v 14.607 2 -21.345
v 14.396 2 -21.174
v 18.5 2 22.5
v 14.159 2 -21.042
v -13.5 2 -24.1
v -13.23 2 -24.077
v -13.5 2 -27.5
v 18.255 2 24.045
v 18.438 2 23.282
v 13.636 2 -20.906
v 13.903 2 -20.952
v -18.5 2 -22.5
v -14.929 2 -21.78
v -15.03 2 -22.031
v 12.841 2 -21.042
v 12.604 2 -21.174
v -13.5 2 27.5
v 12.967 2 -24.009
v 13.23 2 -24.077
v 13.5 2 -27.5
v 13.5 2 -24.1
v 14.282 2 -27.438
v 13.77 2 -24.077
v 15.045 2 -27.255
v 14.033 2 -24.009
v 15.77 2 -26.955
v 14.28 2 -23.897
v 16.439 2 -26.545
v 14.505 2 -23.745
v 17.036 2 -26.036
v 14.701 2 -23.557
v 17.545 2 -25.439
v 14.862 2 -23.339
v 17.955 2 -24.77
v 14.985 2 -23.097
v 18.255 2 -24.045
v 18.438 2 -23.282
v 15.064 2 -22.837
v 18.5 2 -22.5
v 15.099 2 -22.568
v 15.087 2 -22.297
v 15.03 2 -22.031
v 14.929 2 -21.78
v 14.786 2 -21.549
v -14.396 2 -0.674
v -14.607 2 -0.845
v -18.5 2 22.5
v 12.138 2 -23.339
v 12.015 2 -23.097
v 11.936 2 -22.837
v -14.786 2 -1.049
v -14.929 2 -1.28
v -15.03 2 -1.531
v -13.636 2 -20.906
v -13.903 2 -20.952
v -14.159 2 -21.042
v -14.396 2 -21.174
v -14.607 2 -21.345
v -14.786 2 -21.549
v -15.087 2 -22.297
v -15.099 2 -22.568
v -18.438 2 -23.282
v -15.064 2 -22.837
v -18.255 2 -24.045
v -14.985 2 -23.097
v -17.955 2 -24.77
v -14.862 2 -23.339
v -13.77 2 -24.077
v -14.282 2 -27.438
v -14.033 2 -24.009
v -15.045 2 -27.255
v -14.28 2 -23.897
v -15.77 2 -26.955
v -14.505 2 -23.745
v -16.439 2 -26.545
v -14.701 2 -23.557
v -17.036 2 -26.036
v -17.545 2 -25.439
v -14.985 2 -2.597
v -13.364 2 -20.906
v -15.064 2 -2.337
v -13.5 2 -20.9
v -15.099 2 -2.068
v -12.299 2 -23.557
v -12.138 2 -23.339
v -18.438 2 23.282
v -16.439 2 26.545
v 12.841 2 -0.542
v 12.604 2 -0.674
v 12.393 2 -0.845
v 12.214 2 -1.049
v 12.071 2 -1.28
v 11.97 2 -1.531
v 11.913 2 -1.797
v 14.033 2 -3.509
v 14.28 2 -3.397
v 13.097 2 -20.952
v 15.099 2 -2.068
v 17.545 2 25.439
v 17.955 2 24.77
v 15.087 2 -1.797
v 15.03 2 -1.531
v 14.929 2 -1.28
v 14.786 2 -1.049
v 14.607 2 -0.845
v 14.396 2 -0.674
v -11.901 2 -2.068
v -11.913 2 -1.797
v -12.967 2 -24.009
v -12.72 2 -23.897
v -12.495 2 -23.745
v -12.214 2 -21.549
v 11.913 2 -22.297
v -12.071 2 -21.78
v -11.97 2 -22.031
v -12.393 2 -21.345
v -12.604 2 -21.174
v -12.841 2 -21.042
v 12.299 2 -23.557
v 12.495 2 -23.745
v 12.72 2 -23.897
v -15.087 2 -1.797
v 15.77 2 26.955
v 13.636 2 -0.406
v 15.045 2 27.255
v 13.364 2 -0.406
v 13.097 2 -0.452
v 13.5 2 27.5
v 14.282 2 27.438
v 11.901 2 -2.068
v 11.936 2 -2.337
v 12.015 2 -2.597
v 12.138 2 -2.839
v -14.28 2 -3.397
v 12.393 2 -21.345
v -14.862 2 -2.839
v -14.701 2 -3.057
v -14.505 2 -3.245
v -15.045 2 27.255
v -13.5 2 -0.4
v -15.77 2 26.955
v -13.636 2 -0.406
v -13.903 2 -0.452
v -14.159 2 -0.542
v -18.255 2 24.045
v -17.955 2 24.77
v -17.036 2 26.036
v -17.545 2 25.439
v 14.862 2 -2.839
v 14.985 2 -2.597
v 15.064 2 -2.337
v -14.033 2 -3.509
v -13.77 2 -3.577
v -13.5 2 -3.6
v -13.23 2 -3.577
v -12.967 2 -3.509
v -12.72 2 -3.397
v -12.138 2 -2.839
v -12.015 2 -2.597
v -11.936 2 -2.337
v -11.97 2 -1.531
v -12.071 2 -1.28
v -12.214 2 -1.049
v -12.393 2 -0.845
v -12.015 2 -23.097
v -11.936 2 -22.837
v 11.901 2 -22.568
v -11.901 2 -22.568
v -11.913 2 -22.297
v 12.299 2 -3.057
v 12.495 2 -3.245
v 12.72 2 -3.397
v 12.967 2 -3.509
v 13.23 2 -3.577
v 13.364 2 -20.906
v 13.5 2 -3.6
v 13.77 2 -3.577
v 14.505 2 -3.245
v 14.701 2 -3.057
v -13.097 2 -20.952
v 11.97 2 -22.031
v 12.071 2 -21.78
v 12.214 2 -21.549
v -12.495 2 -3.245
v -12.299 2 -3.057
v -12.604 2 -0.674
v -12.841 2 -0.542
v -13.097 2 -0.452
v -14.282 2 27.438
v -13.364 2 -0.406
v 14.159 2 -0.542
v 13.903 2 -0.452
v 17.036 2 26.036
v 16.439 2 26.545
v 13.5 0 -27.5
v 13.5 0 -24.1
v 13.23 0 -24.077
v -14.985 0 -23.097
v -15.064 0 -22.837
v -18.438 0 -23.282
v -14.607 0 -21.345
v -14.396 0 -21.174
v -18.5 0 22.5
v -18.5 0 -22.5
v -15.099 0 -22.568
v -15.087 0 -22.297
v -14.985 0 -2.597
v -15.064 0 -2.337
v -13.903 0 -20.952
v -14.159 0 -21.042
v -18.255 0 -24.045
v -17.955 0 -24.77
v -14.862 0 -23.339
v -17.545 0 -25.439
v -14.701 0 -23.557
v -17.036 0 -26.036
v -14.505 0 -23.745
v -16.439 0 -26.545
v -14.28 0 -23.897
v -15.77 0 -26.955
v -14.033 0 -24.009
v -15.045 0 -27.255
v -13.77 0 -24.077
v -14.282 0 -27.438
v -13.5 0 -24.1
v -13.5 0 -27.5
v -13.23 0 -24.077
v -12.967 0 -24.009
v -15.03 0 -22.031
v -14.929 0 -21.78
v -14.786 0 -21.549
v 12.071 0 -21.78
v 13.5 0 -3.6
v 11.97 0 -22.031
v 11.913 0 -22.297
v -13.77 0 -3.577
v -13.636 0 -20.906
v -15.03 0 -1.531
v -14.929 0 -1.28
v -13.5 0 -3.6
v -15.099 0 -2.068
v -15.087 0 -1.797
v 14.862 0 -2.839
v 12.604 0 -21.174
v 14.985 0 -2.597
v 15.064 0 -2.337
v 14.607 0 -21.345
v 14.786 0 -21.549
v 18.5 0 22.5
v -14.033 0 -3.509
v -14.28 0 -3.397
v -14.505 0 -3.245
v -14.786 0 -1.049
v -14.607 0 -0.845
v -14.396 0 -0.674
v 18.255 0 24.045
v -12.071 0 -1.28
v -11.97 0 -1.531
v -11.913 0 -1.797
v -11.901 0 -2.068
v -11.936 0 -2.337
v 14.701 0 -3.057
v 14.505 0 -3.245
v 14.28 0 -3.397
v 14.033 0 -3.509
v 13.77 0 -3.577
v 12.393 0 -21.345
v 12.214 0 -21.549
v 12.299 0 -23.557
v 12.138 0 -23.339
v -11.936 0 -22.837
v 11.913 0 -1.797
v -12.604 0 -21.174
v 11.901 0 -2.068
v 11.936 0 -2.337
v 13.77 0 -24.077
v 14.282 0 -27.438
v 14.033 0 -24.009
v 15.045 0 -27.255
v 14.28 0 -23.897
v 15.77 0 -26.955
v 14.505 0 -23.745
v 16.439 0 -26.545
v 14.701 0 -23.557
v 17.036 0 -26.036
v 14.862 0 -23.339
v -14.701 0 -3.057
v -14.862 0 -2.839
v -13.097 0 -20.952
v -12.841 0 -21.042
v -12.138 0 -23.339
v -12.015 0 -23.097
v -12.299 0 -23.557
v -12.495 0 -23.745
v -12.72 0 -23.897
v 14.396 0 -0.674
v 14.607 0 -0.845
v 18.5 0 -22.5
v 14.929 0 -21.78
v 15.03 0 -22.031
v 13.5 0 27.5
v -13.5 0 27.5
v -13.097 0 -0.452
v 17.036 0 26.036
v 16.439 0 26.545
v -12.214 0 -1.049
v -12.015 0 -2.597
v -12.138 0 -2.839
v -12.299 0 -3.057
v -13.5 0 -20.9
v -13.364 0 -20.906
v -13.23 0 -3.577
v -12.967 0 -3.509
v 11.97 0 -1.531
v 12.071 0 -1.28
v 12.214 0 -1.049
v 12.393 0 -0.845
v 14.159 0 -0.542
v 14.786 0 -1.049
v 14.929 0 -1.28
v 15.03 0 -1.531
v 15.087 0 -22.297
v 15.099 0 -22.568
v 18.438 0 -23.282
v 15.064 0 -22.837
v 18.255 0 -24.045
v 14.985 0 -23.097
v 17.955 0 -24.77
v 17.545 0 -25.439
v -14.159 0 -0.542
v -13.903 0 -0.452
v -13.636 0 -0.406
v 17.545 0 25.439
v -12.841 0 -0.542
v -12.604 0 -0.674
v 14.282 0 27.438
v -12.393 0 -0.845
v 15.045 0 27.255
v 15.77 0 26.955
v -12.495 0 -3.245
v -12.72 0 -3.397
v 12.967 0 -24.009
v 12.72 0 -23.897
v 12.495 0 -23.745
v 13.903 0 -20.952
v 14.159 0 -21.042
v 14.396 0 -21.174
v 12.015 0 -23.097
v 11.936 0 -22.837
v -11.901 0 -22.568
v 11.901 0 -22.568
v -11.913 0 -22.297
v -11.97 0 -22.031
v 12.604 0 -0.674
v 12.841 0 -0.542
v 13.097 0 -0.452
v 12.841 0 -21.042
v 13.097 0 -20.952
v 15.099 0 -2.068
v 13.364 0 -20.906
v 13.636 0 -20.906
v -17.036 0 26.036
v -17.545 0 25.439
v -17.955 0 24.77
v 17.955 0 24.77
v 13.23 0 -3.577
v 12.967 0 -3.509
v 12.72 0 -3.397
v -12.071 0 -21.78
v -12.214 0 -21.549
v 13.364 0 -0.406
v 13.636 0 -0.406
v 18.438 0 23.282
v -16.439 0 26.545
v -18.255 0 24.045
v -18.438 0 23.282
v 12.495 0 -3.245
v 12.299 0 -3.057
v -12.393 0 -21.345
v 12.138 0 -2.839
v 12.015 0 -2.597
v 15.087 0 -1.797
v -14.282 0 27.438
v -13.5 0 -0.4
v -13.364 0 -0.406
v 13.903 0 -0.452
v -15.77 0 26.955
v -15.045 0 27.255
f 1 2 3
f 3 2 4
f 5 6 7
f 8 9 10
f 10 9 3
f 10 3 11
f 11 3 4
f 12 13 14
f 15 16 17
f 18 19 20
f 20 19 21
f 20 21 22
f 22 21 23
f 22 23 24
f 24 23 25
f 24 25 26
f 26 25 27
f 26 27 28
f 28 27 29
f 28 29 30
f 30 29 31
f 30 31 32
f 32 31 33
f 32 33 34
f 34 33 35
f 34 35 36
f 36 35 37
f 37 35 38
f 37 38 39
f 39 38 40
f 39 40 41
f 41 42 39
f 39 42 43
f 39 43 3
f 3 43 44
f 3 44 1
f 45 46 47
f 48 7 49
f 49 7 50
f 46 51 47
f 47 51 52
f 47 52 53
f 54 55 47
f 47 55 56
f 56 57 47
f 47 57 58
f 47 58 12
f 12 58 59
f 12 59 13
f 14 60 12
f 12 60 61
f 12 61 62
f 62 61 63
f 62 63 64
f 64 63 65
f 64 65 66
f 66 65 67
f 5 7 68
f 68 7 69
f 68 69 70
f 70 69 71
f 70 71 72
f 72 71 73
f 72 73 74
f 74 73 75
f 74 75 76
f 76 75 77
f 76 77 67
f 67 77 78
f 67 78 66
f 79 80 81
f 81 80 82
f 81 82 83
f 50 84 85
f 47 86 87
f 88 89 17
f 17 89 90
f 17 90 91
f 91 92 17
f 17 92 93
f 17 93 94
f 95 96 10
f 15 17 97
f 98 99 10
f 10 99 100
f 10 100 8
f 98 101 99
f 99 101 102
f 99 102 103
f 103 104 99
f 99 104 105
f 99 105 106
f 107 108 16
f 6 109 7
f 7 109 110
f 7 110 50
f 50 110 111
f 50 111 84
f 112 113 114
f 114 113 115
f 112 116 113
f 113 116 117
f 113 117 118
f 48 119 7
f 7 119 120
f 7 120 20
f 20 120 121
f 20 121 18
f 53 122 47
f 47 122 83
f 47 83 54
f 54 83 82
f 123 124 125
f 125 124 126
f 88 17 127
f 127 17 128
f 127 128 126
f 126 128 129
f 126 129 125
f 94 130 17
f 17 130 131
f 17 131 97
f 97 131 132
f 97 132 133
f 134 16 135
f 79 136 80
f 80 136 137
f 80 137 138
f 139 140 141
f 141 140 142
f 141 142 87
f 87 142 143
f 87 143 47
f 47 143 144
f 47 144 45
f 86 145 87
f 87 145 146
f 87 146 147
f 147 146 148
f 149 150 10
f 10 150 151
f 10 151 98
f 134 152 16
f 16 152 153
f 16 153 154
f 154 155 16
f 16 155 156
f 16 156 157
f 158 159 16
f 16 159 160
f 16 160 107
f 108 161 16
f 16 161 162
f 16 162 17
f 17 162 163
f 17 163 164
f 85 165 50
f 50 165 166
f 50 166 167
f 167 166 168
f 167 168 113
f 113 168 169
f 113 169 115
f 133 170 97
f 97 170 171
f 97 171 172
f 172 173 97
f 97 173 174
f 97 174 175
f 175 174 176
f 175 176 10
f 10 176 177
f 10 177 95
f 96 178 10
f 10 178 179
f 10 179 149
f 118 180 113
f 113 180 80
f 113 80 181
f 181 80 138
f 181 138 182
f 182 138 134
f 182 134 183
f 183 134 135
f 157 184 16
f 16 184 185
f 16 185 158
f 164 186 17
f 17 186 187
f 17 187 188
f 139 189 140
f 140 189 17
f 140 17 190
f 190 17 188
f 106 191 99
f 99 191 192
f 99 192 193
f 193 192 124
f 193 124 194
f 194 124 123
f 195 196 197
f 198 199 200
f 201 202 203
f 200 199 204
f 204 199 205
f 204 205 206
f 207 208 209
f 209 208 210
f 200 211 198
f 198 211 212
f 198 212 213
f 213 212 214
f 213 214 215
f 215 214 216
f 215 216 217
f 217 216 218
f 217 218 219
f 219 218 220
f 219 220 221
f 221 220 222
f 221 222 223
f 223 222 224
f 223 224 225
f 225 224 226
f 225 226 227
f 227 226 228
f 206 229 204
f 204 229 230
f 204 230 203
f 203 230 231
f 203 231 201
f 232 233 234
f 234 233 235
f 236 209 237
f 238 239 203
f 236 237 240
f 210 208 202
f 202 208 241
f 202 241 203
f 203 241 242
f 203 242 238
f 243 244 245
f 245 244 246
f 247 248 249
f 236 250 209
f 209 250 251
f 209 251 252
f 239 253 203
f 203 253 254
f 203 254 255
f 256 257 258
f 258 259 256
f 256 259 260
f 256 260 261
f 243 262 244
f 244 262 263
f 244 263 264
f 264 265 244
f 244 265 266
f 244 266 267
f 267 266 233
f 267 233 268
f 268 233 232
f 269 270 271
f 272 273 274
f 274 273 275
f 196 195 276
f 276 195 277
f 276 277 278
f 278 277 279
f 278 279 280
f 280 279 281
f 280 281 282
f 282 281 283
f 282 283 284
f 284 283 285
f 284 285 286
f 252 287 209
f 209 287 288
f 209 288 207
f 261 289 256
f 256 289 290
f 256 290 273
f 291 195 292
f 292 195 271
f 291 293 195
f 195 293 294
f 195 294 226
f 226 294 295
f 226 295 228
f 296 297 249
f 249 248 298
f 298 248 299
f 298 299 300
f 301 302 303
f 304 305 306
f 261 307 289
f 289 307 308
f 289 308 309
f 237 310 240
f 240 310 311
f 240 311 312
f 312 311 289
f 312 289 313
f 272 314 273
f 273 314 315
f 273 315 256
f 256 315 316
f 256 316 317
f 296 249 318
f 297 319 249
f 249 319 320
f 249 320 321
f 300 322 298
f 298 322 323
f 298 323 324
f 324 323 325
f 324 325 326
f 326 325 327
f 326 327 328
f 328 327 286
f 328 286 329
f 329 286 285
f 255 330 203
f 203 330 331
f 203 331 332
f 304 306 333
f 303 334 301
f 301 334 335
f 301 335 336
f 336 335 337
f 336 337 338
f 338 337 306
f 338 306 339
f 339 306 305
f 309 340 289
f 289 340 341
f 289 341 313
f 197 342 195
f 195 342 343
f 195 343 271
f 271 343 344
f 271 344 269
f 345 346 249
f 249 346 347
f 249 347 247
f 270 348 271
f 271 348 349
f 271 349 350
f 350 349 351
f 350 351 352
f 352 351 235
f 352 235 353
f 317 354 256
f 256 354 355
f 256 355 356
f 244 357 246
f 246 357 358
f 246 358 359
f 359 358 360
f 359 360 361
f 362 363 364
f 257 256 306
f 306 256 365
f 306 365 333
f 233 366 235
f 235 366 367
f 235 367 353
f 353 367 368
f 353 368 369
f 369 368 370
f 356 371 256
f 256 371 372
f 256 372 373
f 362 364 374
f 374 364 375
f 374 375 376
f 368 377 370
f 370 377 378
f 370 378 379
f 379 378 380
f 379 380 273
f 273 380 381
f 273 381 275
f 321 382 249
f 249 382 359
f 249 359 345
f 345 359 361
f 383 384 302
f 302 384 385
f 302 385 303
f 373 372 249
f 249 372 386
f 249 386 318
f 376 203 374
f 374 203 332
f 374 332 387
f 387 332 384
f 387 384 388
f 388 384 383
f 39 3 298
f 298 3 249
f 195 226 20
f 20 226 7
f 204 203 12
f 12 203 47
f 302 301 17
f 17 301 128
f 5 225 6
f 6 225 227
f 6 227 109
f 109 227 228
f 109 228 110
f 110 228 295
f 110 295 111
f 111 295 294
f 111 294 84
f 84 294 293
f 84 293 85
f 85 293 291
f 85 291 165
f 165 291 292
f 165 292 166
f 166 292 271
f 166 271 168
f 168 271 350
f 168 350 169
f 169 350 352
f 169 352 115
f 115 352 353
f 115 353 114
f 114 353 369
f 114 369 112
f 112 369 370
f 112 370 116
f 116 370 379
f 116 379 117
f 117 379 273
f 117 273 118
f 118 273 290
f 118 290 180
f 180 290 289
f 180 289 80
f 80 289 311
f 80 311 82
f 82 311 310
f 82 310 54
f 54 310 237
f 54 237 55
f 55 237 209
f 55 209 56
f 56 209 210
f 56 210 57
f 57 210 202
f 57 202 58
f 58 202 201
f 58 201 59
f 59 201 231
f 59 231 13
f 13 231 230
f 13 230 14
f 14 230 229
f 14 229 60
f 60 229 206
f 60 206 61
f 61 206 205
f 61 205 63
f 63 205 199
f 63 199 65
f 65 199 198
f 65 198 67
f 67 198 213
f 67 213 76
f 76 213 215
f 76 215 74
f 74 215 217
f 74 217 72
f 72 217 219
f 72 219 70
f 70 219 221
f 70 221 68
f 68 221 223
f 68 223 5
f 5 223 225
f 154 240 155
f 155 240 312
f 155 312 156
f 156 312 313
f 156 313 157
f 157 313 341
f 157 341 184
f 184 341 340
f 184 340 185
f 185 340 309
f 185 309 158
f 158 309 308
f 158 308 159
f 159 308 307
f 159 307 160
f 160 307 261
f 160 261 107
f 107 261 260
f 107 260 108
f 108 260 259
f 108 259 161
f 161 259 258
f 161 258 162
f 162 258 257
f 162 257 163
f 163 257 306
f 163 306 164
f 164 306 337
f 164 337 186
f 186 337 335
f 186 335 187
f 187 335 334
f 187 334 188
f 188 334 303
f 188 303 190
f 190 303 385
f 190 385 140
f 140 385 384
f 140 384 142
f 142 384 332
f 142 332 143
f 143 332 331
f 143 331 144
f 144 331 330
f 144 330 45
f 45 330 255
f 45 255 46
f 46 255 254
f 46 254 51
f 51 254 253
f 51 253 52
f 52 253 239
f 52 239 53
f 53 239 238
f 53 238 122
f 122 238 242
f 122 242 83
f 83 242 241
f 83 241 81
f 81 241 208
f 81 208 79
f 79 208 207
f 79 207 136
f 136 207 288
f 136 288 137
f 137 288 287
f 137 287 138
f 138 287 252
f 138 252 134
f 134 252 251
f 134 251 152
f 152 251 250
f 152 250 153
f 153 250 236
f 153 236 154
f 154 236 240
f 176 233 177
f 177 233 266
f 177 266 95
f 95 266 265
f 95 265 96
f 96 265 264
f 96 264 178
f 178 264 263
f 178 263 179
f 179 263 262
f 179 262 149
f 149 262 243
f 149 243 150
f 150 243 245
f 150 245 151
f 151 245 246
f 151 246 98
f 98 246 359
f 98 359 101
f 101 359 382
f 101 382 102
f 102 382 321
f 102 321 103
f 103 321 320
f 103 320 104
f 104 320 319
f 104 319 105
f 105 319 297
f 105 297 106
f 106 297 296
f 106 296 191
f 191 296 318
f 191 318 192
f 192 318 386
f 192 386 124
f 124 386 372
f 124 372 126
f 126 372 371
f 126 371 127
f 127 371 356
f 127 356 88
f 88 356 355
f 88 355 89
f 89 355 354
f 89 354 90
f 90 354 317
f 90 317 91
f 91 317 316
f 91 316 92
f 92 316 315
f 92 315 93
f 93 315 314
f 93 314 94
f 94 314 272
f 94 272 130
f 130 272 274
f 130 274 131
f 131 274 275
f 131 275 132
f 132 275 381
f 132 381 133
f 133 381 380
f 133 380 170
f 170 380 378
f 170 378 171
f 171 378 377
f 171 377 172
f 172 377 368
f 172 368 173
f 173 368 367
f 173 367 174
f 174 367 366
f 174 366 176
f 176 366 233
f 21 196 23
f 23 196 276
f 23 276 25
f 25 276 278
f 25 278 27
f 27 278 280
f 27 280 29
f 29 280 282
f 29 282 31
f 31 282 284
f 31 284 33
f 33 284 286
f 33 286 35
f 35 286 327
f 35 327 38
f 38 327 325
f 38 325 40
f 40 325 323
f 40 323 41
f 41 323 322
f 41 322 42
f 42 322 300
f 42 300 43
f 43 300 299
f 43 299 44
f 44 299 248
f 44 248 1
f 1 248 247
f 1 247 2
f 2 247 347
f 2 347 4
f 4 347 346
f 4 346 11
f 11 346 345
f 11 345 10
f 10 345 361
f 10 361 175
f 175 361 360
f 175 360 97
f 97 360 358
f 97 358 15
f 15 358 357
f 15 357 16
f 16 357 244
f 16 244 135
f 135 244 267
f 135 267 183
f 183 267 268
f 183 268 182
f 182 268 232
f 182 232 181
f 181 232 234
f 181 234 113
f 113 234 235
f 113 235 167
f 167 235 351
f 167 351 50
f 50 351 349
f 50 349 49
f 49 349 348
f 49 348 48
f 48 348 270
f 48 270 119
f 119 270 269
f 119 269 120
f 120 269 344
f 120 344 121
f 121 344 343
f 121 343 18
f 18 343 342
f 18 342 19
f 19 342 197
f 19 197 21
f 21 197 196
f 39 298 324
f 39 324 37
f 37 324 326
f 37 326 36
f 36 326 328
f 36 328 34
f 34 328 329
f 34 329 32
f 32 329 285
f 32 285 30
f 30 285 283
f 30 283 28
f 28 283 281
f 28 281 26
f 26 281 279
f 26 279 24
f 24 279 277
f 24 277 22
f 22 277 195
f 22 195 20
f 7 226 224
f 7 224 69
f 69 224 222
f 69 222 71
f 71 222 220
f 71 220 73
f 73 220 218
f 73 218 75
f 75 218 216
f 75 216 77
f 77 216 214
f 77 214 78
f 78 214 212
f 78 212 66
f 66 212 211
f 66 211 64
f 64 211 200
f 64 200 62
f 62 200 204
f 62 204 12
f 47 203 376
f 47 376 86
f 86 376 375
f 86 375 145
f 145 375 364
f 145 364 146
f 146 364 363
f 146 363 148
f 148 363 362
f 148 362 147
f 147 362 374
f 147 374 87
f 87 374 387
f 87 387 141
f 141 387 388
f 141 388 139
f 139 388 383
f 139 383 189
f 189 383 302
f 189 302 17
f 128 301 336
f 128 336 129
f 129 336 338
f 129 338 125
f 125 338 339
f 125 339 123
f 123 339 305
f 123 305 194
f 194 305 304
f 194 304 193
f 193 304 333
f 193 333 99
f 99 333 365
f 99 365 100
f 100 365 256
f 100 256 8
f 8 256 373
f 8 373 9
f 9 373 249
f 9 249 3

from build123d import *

# Parameters (mm, degrees)
CROQUIS1_W              = 37
CROQUIS1_H              = 55
CROQUIS1_R              = 1.6
SALIENTE_EXTRUIR1_DEPTH = 2
REDONDEO1_R             = 5


with BuildPart() as part:
    # Croquis1 → Saliente-Extruir1 (new body)
    with BuildSketch(Plane(origin=(0, 0, 0), x_dir=(1, 0, 0), z_dir=(0, 1, 0))):
        Rectangle(CROQUIS1_W, CROQUIS1_H)
        with Locations((-13.5, 22.5)):
            Circle(CROQUIS1_R, mode=Mode.SUBTRACT)
        with Locations((-13.5, 2)):
            Circle(CROQUIS1_R, mode=Mode.SUBTRACT)
        with Locations((13.5, 2)):
            Circle(CROQUIS1_R, mode=Mode.SUBTRACT)
        with Locations((13.5, 22.5)):
            Circle(CROQUIS1_R, mode=Mode.SUBTRACT)
    extrude(amount=SALIENTE_EXTRUIR1_DEPTH)

    # Redondeo1
    redondeo1_edges = [part.edges().sort_by_distance(p)[0] for p in [
        (18.5, 1, 27.5),
        (-18.5, 1, 27.5),
        (-18.5, 1, -27.5),
        (18.5, 1, -27.5),
    ]]
    fillet(redondeo1_edges, radius=REDONDEO1_R)


solid = part.part
